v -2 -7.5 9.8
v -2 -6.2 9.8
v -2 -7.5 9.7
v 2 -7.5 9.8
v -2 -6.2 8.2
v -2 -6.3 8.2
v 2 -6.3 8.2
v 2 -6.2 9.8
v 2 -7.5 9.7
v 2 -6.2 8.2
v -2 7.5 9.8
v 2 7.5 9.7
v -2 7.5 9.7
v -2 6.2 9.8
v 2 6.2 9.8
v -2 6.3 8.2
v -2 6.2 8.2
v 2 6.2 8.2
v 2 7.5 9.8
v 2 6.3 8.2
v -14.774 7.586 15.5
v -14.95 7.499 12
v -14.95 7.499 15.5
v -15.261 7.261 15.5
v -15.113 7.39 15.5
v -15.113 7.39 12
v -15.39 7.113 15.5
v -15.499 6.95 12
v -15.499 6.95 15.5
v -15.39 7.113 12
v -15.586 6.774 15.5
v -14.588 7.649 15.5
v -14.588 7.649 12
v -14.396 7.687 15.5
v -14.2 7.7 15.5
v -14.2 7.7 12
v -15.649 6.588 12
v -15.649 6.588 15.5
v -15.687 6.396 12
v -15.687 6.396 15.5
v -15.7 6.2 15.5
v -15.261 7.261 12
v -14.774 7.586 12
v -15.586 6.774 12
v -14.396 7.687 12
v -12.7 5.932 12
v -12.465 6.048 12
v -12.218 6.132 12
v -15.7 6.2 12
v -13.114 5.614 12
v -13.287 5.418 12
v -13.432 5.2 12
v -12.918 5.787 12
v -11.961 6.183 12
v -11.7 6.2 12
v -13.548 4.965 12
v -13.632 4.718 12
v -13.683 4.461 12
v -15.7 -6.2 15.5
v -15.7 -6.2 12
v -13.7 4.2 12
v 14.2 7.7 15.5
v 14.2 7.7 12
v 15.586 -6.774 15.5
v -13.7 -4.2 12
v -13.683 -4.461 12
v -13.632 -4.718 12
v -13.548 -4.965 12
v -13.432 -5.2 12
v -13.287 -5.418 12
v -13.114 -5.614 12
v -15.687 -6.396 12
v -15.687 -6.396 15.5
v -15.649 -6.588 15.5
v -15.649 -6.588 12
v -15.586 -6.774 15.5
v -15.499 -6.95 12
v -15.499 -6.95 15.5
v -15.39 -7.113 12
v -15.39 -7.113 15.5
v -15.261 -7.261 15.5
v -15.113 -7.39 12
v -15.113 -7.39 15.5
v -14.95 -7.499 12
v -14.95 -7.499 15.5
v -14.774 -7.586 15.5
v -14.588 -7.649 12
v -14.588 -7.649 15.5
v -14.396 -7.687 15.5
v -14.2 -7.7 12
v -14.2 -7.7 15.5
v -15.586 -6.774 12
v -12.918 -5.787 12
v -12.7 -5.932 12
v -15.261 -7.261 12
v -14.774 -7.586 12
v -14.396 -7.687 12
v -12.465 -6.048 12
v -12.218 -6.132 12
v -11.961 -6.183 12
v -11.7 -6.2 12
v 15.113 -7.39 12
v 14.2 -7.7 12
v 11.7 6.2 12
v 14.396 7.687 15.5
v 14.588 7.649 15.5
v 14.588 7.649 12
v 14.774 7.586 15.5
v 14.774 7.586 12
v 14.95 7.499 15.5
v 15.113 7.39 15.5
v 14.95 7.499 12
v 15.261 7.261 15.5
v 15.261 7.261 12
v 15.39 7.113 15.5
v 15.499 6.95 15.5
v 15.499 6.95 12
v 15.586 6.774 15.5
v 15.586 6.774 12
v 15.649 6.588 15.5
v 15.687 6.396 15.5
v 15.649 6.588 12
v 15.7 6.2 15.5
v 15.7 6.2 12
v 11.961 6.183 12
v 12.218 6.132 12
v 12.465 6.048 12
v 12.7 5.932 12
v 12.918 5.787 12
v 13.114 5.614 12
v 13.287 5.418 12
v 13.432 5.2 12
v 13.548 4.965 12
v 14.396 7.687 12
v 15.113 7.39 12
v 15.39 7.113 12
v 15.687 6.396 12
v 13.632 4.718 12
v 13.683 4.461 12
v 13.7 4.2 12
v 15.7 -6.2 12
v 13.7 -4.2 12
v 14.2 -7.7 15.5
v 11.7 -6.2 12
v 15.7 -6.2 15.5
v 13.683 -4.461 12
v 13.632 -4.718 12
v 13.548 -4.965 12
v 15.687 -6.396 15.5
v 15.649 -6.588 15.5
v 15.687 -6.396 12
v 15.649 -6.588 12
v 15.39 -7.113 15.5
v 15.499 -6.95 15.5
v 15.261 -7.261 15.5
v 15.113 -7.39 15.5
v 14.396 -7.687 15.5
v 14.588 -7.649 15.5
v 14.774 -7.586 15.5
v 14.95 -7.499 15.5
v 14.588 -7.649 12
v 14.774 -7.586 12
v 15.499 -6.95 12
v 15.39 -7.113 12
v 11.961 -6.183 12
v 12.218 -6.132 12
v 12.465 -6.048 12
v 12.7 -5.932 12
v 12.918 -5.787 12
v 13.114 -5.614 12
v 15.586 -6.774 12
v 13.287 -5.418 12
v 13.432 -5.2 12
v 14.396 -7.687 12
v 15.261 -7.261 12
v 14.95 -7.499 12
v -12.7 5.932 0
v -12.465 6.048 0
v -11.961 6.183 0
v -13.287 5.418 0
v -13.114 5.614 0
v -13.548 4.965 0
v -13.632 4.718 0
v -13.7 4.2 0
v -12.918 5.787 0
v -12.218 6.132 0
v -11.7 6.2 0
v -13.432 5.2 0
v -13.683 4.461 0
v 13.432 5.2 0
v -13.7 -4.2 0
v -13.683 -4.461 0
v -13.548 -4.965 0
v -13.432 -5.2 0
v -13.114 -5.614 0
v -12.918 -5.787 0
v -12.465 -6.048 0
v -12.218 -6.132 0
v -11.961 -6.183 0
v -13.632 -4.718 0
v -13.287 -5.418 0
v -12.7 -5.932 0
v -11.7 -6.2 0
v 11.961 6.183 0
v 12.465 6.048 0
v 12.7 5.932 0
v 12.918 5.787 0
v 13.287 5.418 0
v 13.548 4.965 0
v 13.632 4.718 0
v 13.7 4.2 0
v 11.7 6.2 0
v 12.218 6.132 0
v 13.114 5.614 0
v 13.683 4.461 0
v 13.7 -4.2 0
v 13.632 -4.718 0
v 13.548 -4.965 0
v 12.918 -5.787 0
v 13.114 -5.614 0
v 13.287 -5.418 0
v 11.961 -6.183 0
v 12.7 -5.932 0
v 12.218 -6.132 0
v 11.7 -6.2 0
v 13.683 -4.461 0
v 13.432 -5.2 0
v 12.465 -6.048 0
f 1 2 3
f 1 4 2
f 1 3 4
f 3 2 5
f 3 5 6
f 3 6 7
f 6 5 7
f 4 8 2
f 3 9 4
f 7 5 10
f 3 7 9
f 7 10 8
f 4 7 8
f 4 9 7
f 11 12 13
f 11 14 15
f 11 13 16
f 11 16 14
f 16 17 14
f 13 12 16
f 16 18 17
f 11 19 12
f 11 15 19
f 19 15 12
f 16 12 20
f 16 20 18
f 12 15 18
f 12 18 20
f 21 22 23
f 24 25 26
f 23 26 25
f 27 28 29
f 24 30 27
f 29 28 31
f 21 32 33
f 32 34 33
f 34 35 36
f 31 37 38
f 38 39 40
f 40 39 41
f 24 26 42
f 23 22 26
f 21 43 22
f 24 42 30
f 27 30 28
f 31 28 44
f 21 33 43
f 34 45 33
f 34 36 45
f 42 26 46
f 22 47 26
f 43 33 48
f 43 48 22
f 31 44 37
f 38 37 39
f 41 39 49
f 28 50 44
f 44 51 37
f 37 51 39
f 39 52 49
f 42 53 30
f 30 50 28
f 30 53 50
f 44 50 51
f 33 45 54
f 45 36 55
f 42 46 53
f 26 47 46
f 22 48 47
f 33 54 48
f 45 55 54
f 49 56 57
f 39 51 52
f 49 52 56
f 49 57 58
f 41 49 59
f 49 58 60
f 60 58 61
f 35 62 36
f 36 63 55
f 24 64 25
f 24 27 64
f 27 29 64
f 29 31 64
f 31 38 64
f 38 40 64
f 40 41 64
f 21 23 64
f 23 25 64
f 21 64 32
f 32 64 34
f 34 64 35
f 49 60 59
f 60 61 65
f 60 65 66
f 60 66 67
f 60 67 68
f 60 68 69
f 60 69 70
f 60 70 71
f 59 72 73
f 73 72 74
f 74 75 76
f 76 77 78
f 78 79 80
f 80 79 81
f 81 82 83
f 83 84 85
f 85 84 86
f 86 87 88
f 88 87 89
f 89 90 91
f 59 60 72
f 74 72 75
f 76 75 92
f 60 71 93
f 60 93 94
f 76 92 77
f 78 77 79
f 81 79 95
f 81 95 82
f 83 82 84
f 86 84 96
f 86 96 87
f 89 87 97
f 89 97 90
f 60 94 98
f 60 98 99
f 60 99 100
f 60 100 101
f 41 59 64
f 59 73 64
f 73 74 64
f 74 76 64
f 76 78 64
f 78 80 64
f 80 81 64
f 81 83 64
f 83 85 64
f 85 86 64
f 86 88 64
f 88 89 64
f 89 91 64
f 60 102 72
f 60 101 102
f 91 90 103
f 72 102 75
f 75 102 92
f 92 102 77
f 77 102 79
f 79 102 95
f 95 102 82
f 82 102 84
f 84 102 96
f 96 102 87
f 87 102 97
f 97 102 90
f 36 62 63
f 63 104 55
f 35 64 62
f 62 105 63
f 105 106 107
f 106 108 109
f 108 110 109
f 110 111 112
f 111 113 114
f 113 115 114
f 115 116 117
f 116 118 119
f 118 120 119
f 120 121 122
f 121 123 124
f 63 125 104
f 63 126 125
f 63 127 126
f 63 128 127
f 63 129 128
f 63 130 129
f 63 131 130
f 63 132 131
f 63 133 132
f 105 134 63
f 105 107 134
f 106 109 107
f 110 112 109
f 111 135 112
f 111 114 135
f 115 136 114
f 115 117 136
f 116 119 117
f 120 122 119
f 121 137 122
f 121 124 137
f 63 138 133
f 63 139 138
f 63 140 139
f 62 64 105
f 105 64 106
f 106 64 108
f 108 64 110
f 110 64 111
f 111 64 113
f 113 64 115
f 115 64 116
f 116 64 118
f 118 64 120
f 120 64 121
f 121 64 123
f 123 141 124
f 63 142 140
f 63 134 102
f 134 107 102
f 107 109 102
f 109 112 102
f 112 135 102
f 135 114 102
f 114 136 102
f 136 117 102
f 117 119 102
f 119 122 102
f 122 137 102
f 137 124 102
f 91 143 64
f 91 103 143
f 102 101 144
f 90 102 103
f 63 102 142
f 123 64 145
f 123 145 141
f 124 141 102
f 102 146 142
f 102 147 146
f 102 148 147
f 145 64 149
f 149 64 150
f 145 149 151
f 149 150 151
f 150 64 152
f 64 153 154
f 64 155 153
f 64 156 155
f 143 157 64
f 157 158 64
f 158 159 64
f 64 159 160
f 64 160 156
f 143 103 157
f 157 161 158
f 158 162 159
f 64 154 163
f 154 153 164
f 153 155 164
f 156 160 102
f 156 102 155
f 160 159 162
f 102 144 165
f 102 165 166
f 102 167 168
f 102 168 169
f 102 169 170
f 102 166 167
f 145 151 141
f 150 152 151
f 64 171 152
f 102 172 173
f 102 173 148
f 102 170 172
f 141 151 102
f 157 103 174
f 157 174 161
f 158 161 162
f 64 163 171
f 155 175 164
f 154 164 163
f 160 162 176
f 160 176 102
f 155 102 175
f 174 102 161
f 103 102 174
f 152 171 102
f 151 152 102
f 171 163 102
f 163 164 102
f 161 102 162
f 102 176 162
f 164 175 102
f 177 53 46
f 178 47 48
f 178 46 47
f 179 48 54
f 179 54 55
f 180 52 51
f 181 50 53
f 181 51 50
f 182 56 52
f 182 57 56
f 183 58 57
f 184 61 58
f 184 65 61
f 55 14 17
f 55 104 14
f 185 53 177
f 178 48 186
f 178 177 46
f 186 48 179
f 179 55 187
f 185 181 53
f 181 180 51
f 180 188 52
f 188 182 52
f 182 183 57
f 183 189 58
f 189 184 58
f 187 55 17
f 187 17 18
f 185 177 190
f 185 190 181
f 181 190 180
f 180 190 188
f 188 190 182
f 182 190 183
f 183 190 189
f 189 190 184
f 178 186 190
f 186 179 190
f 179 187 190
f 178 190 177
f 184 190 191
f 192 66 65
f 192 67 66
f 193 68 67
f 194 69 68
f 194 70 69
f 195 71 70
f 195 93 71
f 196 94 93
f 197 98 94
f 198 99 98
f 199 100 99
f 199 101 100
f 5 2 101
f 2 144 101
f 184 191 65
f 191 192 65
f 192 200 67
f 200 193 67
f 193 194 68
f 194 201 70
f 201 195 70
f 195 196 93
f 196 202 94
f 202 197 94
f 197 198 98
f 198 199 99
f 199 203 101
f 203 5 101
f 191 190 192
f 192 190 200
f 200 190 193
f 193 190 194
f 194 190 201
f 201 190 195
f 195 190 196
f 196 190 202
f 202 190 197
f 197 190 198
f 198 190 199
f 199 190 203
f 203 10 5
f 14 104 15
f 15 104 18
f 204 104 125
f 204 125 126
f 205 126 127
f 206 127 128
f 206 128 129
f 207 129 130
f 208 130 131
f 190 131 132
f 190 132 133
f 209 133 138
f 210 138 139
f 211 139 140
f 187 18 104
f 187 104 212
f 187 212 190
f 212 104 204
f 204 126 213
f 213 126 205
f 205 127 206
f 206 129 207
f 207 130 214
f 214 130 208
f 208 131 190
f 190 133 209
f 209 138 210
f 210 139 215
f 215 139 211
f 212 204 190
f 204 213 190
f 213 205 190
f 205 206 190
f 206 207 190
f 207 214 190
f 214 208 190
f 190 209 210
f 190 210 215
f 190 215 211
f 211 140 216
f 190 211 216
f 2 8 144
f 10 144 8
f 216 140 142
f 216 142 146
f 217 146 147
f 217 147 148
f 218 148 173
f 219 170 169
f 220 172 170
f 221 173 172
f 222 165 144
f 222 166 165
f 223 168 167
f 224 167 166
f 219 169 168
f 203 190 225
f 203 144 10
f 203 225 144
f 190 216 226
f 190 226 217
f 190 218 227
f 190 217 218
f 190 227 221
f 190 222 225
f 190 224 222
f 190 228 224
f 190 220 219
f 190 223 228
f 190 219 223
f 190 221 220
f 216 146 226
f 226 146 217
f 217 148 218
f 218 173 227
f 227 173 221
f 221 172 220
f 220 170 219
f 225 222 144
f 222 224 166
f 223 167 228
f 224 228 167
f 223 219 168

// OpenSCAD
// file: insert_base.scad
// ============================================
// MODULAR CABLE ORGANIZER - BASE INSERT MODULE
// ============================================
// This is the parent module for all insert types
// Include this file and call insert_with_port() with a port shape
// ============================================

include <parameters.scad>

// === BASE INSERT WITH CUSTOM BODY DEPTH ===
module insert_blank_custom(body_depth) {
    union() {
        // Base plate (sits in frame slot)
        rounded_box_rect(insert_width, insert_height, insert_base_depth, 1.5);
        
        // Body (protrudes out front) - custom depth
        translate([0, 0, insert_base_depth])
            rounded_box_rect(insert_body_width, insert_body_height, body_depth, 2);
        
        // Snap tabs on all 4 sides
        snap_tabs_all();
    }
}

// === BASE INSERT (default depth - for backwards compatibility) ===
module insert_blank() {
    insert_blank_custom(insert_body_depth);
}

// === INSERT WITH THROUGH-HOLE PORT (custom depth) ===
// Pass body_depth and a 2D shape as children
module insert_with_port_custom(body_depth) {
    total_depth = insert_base_depth + body_depth;
    difference() {
        insert_blank_custom(body_depth);
        
        // Cut port hole ALL THE WAY through (tube shape)
        translate([0, 0, -0.1])
            linear_extrude(total_depth + 0.2)
            offset(r=port_clearance)  // Add clearance to port opening
            children();
    }
}

// === INSERT WITH THROUGH-HOLE PORT (default depth) ===
module insert_with_port() {
    insert_with_port_custom(insert_body_depth) children();
}

// === PRE-MADE INSERT MODULES WITH CORRECT DEPTHS ===
module insert_usbc() {
    insert_with_port_custom(usbc_body_depth) port_usbc();
}

module insert_usba() {
    insert_with_port_custom(usba_body_depth) port_usba();
}

module insert_usb_mini() {
    insert_with_port_custom(usb_mini_body_depth) port_usb_mini();
}

module insert_usb_micro() {
    insert_with_port_custom(usb_micro_body_depth) port_usb_micro();
}

module insert_usb_b() {
    insert_with_port_custom(usb_b_body_depth) port_usb_b();
}

module insert_lightning() {
    insert_with_port_custom(lightning_body_depth) port_lightning();
}

module insert_hdmi() {
    insert_with_port_custom(hdmi_body_depth) port_hdmi();
}

module insert_audio_jack() {
    insert_with_port_custom(audio_jack_body_depth) port_audio_jack();
}

// === SNAP TABS (on neck/body - catch on frame cutouts) ===
// Tabs are on the body, positioned to engage with frame wall cutouts
module snap_tabs_all() {
    // Position tabs up on body (clear of base/frame)
    tab_z = insert_base_depth + snap_tab_offset;
    
    // Tabs on all 4 sides of the body
    for (angle = [0, 90, 180, 270]) {
        rotate([0, 0, angle])
            translate([0, insert_body_height/2, tab_z])
            neck_snap_tab();
    }
}

module neck_snap_tab() {
    // Wedge shape (FLIPPED): 
    // - Peak/taper on BOTTOM - slides past back plate when inserting
    // - Flat on TOP - catches and holds
    hull() {
        // Peak of wedge (protruding, at BOTTOM of tab)
        translate([-snap_tab_width/2, snap_tab_protrude, 0])
            cube([snap_tab_width, 0.1, 0.1]);
        // Flat top (at body surface, TOP of tab)
        translate([-snap_tab_width/2, 0, snap_tab_thick])
            cube([snap_tab_width, 0.1, 0.1]);
        // Base of wedge (at body surface, bottom)
        translate([-snap_tab_width/2, 0, 0])
            cube([snap_tab_width, 0.1, 0.1]);
    }
}

module snap_tab_horizontal() {
    hull() {
        translate([0, -snap_tab_protrude/2, 0])
            cube([snap_tab_width, 0.1, snap_tab_thick], center=true);
        translate([0, snap_tab_protrude/2, snap_tab_thick * 0.2])
            cube([snap_tab_width, 0.1, snap_tab_thick * 0.6], center=true);
    }
}

module snap_tab_vertical() {
    hull() {
        translate([-snap_tab_protrude/2, 0, 0])
            cube([0.1, snap_tab_width, snap_tab_thick], center=true);
        translate([snap_tab_protrude/2, 0, snap_tab_thick * 0.2])
            cube([0.1, snap_tab_width, snap_tab_thick * 0.6], center=true);
    }
}

// === UTILITY MODULES ===
module rounded_box_rect(w, d, h, r) {
    translate([0, 0, h/2])
        hull() {
            for (x = [-1, 1], y = [-1, 1])
                translate([x * (w/2 - r), y * (d/2 - r), 0])
                    cylinder(h=h, r=r, center=true);
        }
}

// === PORT SHAPE MODULES (2D) ===
// These define the cutout shapes for each connector type

module port_rounded_rect(w, h, r) {
    // Standard rounded rectangle
    hull() {
        for (x = [-1, 1], y = [-1, 1])
            translate([x * (w/2 - r), y * (h/2 - r)])
                circle(r=r);
    }
}

module port_usbc() {
    port_rounded_rect(usbc_w, usbc_h, usbc_r);
}

module port_usba() {
    port_rounded_rect(usba_w, usba_h, usba_r);
}

module port_usb_mini() {
    port_rounded_rect(usb_mini_w, usb_mini_h, usb_mini_r);
}

module port_usb_micro() {
    port_rounded_rect(usb_micro_w, usb_micro_h, usb_micro_r);
}

module port_usb_b() {
    // USB-B has beveled top corners
    hull() {
        // Bottom corners (full radius)
        for (x = [-1, 1])
            translate([x * (usb_b_w/2 - usb_b_r), -(usb_b_h/2 - usb_b_r)])
                circle(r=usb_b_r);
        // Top corners (chamfered - moved inward)
        for (x = [-1, 1])
            translate([x * (usb_b_w/2 - usb_b_r - 1), (usb_b_h/2 - usb_b_r)])
                circle(r=usb_b_r);
    }
}

module port_lightning() {
    port_rounded_rect(lightning_w, lightning_h, lightning_r);
}

module port_hdmi() {
    // HDMI is tapered (wider at top)
    hull() {
        // Top (wider)
        for (x = [-1, 1])
            translate([x * (hdmi_w/2 - hdmi_r), (hdmi_h/2 - hdmi_r)])
                circle(r=hdmi_r);
        // Bottom (narrower)
        for (x = [-1, 1])
            translate([x * (hdmi_w/2 - hdmi_r - 1), -(hdmi_h/2 - hdmi_r)])
                circle(r=hdmi_r);
    }
}

module port_audio_jack() {
    circle(d=audio_jack_dia);
}

module port_label_recess() {
    // Shallow rectangular recess for labels
    square([label_w, label_h], center=true);
}

// === RENDER (for testing this file directly) ===
// insert_blank();
// file: parameters.scad
// ============================================
// MODULAR CABLE ORGANIZER - SHARED PARAMETERS
// ============================================
// All dimensions in mm - include this in all files
// ============================================

$fn = 48;

// === TOLERANCES ===
clearance = 0.3;
port_clearance = 0.1;  // Extra clearance for port openings (reduced - 0.2 was too loose for USB-C)
wall = 1.6;

// === SLOT DIMENSIONS (2:1 aspect ratio) - scaled to 2/3 ===
slot_width = 32;  // Reduced by 1mm for more compact insert
slot_height = 16;  // Reduced by 1mm for more compact insert
slot_depth = 4;  // Reduced from 6mm - less frame depth needed

// === FRAME STRUCTURE ===
frame_wall = 0.5;   // Reduced for more compact frame
frame_border = 8;  // Increased by 10mm for mounting holes with countersink
frame_back = 2;     // Slightly thicker for snap catch strength
mount_hole_dia = 3;
countersink_dia = 6;  // Diameter of countersink for screw heads
countersink_depth = 2;  // Depth of countersink

// === GRID ===
grid_cols = 2;
grid_rows = 2;

// === INSERT BASE DIMENSIONS ===
insert_width = slot_width - (2 * clearance);
insert_height = slot_height - (2 * clearance);
insert_base_depth = slot_depth - 0.5;

// === INSERT BODY (protrudes from frame) ===
insert_body_width = insert_width - 4;
insert_body_height = insert_height - 3;
insert_body_depth = 12;  // Deep enough to accommodate male cable connectors
insert_top_thick = 1.5;  // Top platform thickness

// === SNAP TABS (on neck/body - catch on back plate) ===
snap_tab_width = 4;
snap_tab_protrude = 1.2;  // How far tab sticks out from body
snap_tab_thick = 1.5;     // Z thickness of tab
snap_tab_offset = 2.2;      // Distance from base to tab bottom on insert (increased to clear frame)

// === CONNECTOR PORT DIMENSIONS & BODY DEPTHS ===
// Port dimensions from reference blueprints
// Body depths sized to match typical male connector lengths

// USB-C: 8.4 x 2.6mm, male connector ~9mm
usbc_w = 8.4;
usbc_h = 2.6;
usbc_r = 1.0;
usbc_body_depth = 9;

// USB-A: 14.0 x 6.5mm, male connector ~13mm
usba_w = 14.0;
usba_h = 6.5;
usba_r = 0.5;
usba_body_depth = 13;

// USB Mini: 6.9 x 3.0mm, male connector ~9mm
usb_mini_w = 6.9;
usb_mini_h = 3.0;
usb_mini_r = 0.5;
usb_mini_body_depth = 9;

// USB Micro: 6.9 x 1.8mm, male connector ~7mm
usb_micro_w = 6.9;
usb_micro_h = 1.8;
usb_micro_r = 0.3;
usb_micro_body_depth = 7;

// USB-B: 8.0 x 7.5mm, male connector ~14mm
usb_b_w = 8.0;
usb_b_h = 7.5;
usb_b_r = 1.0;
usb_b_body_depth = 14;

// Lightning: 6.7 x 1.5mm, male connector ~8mm
lightning_w = 6.7;
lightning_h = 1.5;
lightning_r = 0.5;
lightning_body_depth = 8;

// HDMI: 14.0 x 4.5mm, male connector ~16mm
hdmi_w = 14.0;
hdmi_h = 4.5;
hdmi_r = 0.5;
hdmi_body_depth = 16;

// 3.5mm Audio Jack: male plug ~14mm
audio_jack_dia = 6.0;
audio_jack_body_depth = 14;

// Blank/Label: recessed area for label
label_w = 30;
label_h = 12;
label_depth = 0.8;

// === CALCULATED VALUES ===
frame_total_depth = frame_back + slot_depth;
grid_width = (grid_cols * slot_width) + ((grid_cols - 1) * frame_wall);
grid_height = (grid_rows * slot_height) + ((grid_rows - 1) * frame_wall);
frame_width = grid_width + (2 * frame_border);
frame_height_total = grid_height + (2 * frame_border);
insert_total_depth = insert_base_depth + insert_body_depth;
// main file
// ============================================
// PRINT FILE: Blank Insert
// ============================================
// Body depth: 12mm (default depth)
// Print with flat side DOWN (on bed)
// No supports needed
// ============================================

include <parameters.scad>
include <insert_base.scad>

// Blank insert - oriented for printing (flat side down)
total_depth = insert_base_depth + insert_body_depth;

rotate([180, 0, 0])
translate([0, 0, -total_depth])
    insert_blank();
